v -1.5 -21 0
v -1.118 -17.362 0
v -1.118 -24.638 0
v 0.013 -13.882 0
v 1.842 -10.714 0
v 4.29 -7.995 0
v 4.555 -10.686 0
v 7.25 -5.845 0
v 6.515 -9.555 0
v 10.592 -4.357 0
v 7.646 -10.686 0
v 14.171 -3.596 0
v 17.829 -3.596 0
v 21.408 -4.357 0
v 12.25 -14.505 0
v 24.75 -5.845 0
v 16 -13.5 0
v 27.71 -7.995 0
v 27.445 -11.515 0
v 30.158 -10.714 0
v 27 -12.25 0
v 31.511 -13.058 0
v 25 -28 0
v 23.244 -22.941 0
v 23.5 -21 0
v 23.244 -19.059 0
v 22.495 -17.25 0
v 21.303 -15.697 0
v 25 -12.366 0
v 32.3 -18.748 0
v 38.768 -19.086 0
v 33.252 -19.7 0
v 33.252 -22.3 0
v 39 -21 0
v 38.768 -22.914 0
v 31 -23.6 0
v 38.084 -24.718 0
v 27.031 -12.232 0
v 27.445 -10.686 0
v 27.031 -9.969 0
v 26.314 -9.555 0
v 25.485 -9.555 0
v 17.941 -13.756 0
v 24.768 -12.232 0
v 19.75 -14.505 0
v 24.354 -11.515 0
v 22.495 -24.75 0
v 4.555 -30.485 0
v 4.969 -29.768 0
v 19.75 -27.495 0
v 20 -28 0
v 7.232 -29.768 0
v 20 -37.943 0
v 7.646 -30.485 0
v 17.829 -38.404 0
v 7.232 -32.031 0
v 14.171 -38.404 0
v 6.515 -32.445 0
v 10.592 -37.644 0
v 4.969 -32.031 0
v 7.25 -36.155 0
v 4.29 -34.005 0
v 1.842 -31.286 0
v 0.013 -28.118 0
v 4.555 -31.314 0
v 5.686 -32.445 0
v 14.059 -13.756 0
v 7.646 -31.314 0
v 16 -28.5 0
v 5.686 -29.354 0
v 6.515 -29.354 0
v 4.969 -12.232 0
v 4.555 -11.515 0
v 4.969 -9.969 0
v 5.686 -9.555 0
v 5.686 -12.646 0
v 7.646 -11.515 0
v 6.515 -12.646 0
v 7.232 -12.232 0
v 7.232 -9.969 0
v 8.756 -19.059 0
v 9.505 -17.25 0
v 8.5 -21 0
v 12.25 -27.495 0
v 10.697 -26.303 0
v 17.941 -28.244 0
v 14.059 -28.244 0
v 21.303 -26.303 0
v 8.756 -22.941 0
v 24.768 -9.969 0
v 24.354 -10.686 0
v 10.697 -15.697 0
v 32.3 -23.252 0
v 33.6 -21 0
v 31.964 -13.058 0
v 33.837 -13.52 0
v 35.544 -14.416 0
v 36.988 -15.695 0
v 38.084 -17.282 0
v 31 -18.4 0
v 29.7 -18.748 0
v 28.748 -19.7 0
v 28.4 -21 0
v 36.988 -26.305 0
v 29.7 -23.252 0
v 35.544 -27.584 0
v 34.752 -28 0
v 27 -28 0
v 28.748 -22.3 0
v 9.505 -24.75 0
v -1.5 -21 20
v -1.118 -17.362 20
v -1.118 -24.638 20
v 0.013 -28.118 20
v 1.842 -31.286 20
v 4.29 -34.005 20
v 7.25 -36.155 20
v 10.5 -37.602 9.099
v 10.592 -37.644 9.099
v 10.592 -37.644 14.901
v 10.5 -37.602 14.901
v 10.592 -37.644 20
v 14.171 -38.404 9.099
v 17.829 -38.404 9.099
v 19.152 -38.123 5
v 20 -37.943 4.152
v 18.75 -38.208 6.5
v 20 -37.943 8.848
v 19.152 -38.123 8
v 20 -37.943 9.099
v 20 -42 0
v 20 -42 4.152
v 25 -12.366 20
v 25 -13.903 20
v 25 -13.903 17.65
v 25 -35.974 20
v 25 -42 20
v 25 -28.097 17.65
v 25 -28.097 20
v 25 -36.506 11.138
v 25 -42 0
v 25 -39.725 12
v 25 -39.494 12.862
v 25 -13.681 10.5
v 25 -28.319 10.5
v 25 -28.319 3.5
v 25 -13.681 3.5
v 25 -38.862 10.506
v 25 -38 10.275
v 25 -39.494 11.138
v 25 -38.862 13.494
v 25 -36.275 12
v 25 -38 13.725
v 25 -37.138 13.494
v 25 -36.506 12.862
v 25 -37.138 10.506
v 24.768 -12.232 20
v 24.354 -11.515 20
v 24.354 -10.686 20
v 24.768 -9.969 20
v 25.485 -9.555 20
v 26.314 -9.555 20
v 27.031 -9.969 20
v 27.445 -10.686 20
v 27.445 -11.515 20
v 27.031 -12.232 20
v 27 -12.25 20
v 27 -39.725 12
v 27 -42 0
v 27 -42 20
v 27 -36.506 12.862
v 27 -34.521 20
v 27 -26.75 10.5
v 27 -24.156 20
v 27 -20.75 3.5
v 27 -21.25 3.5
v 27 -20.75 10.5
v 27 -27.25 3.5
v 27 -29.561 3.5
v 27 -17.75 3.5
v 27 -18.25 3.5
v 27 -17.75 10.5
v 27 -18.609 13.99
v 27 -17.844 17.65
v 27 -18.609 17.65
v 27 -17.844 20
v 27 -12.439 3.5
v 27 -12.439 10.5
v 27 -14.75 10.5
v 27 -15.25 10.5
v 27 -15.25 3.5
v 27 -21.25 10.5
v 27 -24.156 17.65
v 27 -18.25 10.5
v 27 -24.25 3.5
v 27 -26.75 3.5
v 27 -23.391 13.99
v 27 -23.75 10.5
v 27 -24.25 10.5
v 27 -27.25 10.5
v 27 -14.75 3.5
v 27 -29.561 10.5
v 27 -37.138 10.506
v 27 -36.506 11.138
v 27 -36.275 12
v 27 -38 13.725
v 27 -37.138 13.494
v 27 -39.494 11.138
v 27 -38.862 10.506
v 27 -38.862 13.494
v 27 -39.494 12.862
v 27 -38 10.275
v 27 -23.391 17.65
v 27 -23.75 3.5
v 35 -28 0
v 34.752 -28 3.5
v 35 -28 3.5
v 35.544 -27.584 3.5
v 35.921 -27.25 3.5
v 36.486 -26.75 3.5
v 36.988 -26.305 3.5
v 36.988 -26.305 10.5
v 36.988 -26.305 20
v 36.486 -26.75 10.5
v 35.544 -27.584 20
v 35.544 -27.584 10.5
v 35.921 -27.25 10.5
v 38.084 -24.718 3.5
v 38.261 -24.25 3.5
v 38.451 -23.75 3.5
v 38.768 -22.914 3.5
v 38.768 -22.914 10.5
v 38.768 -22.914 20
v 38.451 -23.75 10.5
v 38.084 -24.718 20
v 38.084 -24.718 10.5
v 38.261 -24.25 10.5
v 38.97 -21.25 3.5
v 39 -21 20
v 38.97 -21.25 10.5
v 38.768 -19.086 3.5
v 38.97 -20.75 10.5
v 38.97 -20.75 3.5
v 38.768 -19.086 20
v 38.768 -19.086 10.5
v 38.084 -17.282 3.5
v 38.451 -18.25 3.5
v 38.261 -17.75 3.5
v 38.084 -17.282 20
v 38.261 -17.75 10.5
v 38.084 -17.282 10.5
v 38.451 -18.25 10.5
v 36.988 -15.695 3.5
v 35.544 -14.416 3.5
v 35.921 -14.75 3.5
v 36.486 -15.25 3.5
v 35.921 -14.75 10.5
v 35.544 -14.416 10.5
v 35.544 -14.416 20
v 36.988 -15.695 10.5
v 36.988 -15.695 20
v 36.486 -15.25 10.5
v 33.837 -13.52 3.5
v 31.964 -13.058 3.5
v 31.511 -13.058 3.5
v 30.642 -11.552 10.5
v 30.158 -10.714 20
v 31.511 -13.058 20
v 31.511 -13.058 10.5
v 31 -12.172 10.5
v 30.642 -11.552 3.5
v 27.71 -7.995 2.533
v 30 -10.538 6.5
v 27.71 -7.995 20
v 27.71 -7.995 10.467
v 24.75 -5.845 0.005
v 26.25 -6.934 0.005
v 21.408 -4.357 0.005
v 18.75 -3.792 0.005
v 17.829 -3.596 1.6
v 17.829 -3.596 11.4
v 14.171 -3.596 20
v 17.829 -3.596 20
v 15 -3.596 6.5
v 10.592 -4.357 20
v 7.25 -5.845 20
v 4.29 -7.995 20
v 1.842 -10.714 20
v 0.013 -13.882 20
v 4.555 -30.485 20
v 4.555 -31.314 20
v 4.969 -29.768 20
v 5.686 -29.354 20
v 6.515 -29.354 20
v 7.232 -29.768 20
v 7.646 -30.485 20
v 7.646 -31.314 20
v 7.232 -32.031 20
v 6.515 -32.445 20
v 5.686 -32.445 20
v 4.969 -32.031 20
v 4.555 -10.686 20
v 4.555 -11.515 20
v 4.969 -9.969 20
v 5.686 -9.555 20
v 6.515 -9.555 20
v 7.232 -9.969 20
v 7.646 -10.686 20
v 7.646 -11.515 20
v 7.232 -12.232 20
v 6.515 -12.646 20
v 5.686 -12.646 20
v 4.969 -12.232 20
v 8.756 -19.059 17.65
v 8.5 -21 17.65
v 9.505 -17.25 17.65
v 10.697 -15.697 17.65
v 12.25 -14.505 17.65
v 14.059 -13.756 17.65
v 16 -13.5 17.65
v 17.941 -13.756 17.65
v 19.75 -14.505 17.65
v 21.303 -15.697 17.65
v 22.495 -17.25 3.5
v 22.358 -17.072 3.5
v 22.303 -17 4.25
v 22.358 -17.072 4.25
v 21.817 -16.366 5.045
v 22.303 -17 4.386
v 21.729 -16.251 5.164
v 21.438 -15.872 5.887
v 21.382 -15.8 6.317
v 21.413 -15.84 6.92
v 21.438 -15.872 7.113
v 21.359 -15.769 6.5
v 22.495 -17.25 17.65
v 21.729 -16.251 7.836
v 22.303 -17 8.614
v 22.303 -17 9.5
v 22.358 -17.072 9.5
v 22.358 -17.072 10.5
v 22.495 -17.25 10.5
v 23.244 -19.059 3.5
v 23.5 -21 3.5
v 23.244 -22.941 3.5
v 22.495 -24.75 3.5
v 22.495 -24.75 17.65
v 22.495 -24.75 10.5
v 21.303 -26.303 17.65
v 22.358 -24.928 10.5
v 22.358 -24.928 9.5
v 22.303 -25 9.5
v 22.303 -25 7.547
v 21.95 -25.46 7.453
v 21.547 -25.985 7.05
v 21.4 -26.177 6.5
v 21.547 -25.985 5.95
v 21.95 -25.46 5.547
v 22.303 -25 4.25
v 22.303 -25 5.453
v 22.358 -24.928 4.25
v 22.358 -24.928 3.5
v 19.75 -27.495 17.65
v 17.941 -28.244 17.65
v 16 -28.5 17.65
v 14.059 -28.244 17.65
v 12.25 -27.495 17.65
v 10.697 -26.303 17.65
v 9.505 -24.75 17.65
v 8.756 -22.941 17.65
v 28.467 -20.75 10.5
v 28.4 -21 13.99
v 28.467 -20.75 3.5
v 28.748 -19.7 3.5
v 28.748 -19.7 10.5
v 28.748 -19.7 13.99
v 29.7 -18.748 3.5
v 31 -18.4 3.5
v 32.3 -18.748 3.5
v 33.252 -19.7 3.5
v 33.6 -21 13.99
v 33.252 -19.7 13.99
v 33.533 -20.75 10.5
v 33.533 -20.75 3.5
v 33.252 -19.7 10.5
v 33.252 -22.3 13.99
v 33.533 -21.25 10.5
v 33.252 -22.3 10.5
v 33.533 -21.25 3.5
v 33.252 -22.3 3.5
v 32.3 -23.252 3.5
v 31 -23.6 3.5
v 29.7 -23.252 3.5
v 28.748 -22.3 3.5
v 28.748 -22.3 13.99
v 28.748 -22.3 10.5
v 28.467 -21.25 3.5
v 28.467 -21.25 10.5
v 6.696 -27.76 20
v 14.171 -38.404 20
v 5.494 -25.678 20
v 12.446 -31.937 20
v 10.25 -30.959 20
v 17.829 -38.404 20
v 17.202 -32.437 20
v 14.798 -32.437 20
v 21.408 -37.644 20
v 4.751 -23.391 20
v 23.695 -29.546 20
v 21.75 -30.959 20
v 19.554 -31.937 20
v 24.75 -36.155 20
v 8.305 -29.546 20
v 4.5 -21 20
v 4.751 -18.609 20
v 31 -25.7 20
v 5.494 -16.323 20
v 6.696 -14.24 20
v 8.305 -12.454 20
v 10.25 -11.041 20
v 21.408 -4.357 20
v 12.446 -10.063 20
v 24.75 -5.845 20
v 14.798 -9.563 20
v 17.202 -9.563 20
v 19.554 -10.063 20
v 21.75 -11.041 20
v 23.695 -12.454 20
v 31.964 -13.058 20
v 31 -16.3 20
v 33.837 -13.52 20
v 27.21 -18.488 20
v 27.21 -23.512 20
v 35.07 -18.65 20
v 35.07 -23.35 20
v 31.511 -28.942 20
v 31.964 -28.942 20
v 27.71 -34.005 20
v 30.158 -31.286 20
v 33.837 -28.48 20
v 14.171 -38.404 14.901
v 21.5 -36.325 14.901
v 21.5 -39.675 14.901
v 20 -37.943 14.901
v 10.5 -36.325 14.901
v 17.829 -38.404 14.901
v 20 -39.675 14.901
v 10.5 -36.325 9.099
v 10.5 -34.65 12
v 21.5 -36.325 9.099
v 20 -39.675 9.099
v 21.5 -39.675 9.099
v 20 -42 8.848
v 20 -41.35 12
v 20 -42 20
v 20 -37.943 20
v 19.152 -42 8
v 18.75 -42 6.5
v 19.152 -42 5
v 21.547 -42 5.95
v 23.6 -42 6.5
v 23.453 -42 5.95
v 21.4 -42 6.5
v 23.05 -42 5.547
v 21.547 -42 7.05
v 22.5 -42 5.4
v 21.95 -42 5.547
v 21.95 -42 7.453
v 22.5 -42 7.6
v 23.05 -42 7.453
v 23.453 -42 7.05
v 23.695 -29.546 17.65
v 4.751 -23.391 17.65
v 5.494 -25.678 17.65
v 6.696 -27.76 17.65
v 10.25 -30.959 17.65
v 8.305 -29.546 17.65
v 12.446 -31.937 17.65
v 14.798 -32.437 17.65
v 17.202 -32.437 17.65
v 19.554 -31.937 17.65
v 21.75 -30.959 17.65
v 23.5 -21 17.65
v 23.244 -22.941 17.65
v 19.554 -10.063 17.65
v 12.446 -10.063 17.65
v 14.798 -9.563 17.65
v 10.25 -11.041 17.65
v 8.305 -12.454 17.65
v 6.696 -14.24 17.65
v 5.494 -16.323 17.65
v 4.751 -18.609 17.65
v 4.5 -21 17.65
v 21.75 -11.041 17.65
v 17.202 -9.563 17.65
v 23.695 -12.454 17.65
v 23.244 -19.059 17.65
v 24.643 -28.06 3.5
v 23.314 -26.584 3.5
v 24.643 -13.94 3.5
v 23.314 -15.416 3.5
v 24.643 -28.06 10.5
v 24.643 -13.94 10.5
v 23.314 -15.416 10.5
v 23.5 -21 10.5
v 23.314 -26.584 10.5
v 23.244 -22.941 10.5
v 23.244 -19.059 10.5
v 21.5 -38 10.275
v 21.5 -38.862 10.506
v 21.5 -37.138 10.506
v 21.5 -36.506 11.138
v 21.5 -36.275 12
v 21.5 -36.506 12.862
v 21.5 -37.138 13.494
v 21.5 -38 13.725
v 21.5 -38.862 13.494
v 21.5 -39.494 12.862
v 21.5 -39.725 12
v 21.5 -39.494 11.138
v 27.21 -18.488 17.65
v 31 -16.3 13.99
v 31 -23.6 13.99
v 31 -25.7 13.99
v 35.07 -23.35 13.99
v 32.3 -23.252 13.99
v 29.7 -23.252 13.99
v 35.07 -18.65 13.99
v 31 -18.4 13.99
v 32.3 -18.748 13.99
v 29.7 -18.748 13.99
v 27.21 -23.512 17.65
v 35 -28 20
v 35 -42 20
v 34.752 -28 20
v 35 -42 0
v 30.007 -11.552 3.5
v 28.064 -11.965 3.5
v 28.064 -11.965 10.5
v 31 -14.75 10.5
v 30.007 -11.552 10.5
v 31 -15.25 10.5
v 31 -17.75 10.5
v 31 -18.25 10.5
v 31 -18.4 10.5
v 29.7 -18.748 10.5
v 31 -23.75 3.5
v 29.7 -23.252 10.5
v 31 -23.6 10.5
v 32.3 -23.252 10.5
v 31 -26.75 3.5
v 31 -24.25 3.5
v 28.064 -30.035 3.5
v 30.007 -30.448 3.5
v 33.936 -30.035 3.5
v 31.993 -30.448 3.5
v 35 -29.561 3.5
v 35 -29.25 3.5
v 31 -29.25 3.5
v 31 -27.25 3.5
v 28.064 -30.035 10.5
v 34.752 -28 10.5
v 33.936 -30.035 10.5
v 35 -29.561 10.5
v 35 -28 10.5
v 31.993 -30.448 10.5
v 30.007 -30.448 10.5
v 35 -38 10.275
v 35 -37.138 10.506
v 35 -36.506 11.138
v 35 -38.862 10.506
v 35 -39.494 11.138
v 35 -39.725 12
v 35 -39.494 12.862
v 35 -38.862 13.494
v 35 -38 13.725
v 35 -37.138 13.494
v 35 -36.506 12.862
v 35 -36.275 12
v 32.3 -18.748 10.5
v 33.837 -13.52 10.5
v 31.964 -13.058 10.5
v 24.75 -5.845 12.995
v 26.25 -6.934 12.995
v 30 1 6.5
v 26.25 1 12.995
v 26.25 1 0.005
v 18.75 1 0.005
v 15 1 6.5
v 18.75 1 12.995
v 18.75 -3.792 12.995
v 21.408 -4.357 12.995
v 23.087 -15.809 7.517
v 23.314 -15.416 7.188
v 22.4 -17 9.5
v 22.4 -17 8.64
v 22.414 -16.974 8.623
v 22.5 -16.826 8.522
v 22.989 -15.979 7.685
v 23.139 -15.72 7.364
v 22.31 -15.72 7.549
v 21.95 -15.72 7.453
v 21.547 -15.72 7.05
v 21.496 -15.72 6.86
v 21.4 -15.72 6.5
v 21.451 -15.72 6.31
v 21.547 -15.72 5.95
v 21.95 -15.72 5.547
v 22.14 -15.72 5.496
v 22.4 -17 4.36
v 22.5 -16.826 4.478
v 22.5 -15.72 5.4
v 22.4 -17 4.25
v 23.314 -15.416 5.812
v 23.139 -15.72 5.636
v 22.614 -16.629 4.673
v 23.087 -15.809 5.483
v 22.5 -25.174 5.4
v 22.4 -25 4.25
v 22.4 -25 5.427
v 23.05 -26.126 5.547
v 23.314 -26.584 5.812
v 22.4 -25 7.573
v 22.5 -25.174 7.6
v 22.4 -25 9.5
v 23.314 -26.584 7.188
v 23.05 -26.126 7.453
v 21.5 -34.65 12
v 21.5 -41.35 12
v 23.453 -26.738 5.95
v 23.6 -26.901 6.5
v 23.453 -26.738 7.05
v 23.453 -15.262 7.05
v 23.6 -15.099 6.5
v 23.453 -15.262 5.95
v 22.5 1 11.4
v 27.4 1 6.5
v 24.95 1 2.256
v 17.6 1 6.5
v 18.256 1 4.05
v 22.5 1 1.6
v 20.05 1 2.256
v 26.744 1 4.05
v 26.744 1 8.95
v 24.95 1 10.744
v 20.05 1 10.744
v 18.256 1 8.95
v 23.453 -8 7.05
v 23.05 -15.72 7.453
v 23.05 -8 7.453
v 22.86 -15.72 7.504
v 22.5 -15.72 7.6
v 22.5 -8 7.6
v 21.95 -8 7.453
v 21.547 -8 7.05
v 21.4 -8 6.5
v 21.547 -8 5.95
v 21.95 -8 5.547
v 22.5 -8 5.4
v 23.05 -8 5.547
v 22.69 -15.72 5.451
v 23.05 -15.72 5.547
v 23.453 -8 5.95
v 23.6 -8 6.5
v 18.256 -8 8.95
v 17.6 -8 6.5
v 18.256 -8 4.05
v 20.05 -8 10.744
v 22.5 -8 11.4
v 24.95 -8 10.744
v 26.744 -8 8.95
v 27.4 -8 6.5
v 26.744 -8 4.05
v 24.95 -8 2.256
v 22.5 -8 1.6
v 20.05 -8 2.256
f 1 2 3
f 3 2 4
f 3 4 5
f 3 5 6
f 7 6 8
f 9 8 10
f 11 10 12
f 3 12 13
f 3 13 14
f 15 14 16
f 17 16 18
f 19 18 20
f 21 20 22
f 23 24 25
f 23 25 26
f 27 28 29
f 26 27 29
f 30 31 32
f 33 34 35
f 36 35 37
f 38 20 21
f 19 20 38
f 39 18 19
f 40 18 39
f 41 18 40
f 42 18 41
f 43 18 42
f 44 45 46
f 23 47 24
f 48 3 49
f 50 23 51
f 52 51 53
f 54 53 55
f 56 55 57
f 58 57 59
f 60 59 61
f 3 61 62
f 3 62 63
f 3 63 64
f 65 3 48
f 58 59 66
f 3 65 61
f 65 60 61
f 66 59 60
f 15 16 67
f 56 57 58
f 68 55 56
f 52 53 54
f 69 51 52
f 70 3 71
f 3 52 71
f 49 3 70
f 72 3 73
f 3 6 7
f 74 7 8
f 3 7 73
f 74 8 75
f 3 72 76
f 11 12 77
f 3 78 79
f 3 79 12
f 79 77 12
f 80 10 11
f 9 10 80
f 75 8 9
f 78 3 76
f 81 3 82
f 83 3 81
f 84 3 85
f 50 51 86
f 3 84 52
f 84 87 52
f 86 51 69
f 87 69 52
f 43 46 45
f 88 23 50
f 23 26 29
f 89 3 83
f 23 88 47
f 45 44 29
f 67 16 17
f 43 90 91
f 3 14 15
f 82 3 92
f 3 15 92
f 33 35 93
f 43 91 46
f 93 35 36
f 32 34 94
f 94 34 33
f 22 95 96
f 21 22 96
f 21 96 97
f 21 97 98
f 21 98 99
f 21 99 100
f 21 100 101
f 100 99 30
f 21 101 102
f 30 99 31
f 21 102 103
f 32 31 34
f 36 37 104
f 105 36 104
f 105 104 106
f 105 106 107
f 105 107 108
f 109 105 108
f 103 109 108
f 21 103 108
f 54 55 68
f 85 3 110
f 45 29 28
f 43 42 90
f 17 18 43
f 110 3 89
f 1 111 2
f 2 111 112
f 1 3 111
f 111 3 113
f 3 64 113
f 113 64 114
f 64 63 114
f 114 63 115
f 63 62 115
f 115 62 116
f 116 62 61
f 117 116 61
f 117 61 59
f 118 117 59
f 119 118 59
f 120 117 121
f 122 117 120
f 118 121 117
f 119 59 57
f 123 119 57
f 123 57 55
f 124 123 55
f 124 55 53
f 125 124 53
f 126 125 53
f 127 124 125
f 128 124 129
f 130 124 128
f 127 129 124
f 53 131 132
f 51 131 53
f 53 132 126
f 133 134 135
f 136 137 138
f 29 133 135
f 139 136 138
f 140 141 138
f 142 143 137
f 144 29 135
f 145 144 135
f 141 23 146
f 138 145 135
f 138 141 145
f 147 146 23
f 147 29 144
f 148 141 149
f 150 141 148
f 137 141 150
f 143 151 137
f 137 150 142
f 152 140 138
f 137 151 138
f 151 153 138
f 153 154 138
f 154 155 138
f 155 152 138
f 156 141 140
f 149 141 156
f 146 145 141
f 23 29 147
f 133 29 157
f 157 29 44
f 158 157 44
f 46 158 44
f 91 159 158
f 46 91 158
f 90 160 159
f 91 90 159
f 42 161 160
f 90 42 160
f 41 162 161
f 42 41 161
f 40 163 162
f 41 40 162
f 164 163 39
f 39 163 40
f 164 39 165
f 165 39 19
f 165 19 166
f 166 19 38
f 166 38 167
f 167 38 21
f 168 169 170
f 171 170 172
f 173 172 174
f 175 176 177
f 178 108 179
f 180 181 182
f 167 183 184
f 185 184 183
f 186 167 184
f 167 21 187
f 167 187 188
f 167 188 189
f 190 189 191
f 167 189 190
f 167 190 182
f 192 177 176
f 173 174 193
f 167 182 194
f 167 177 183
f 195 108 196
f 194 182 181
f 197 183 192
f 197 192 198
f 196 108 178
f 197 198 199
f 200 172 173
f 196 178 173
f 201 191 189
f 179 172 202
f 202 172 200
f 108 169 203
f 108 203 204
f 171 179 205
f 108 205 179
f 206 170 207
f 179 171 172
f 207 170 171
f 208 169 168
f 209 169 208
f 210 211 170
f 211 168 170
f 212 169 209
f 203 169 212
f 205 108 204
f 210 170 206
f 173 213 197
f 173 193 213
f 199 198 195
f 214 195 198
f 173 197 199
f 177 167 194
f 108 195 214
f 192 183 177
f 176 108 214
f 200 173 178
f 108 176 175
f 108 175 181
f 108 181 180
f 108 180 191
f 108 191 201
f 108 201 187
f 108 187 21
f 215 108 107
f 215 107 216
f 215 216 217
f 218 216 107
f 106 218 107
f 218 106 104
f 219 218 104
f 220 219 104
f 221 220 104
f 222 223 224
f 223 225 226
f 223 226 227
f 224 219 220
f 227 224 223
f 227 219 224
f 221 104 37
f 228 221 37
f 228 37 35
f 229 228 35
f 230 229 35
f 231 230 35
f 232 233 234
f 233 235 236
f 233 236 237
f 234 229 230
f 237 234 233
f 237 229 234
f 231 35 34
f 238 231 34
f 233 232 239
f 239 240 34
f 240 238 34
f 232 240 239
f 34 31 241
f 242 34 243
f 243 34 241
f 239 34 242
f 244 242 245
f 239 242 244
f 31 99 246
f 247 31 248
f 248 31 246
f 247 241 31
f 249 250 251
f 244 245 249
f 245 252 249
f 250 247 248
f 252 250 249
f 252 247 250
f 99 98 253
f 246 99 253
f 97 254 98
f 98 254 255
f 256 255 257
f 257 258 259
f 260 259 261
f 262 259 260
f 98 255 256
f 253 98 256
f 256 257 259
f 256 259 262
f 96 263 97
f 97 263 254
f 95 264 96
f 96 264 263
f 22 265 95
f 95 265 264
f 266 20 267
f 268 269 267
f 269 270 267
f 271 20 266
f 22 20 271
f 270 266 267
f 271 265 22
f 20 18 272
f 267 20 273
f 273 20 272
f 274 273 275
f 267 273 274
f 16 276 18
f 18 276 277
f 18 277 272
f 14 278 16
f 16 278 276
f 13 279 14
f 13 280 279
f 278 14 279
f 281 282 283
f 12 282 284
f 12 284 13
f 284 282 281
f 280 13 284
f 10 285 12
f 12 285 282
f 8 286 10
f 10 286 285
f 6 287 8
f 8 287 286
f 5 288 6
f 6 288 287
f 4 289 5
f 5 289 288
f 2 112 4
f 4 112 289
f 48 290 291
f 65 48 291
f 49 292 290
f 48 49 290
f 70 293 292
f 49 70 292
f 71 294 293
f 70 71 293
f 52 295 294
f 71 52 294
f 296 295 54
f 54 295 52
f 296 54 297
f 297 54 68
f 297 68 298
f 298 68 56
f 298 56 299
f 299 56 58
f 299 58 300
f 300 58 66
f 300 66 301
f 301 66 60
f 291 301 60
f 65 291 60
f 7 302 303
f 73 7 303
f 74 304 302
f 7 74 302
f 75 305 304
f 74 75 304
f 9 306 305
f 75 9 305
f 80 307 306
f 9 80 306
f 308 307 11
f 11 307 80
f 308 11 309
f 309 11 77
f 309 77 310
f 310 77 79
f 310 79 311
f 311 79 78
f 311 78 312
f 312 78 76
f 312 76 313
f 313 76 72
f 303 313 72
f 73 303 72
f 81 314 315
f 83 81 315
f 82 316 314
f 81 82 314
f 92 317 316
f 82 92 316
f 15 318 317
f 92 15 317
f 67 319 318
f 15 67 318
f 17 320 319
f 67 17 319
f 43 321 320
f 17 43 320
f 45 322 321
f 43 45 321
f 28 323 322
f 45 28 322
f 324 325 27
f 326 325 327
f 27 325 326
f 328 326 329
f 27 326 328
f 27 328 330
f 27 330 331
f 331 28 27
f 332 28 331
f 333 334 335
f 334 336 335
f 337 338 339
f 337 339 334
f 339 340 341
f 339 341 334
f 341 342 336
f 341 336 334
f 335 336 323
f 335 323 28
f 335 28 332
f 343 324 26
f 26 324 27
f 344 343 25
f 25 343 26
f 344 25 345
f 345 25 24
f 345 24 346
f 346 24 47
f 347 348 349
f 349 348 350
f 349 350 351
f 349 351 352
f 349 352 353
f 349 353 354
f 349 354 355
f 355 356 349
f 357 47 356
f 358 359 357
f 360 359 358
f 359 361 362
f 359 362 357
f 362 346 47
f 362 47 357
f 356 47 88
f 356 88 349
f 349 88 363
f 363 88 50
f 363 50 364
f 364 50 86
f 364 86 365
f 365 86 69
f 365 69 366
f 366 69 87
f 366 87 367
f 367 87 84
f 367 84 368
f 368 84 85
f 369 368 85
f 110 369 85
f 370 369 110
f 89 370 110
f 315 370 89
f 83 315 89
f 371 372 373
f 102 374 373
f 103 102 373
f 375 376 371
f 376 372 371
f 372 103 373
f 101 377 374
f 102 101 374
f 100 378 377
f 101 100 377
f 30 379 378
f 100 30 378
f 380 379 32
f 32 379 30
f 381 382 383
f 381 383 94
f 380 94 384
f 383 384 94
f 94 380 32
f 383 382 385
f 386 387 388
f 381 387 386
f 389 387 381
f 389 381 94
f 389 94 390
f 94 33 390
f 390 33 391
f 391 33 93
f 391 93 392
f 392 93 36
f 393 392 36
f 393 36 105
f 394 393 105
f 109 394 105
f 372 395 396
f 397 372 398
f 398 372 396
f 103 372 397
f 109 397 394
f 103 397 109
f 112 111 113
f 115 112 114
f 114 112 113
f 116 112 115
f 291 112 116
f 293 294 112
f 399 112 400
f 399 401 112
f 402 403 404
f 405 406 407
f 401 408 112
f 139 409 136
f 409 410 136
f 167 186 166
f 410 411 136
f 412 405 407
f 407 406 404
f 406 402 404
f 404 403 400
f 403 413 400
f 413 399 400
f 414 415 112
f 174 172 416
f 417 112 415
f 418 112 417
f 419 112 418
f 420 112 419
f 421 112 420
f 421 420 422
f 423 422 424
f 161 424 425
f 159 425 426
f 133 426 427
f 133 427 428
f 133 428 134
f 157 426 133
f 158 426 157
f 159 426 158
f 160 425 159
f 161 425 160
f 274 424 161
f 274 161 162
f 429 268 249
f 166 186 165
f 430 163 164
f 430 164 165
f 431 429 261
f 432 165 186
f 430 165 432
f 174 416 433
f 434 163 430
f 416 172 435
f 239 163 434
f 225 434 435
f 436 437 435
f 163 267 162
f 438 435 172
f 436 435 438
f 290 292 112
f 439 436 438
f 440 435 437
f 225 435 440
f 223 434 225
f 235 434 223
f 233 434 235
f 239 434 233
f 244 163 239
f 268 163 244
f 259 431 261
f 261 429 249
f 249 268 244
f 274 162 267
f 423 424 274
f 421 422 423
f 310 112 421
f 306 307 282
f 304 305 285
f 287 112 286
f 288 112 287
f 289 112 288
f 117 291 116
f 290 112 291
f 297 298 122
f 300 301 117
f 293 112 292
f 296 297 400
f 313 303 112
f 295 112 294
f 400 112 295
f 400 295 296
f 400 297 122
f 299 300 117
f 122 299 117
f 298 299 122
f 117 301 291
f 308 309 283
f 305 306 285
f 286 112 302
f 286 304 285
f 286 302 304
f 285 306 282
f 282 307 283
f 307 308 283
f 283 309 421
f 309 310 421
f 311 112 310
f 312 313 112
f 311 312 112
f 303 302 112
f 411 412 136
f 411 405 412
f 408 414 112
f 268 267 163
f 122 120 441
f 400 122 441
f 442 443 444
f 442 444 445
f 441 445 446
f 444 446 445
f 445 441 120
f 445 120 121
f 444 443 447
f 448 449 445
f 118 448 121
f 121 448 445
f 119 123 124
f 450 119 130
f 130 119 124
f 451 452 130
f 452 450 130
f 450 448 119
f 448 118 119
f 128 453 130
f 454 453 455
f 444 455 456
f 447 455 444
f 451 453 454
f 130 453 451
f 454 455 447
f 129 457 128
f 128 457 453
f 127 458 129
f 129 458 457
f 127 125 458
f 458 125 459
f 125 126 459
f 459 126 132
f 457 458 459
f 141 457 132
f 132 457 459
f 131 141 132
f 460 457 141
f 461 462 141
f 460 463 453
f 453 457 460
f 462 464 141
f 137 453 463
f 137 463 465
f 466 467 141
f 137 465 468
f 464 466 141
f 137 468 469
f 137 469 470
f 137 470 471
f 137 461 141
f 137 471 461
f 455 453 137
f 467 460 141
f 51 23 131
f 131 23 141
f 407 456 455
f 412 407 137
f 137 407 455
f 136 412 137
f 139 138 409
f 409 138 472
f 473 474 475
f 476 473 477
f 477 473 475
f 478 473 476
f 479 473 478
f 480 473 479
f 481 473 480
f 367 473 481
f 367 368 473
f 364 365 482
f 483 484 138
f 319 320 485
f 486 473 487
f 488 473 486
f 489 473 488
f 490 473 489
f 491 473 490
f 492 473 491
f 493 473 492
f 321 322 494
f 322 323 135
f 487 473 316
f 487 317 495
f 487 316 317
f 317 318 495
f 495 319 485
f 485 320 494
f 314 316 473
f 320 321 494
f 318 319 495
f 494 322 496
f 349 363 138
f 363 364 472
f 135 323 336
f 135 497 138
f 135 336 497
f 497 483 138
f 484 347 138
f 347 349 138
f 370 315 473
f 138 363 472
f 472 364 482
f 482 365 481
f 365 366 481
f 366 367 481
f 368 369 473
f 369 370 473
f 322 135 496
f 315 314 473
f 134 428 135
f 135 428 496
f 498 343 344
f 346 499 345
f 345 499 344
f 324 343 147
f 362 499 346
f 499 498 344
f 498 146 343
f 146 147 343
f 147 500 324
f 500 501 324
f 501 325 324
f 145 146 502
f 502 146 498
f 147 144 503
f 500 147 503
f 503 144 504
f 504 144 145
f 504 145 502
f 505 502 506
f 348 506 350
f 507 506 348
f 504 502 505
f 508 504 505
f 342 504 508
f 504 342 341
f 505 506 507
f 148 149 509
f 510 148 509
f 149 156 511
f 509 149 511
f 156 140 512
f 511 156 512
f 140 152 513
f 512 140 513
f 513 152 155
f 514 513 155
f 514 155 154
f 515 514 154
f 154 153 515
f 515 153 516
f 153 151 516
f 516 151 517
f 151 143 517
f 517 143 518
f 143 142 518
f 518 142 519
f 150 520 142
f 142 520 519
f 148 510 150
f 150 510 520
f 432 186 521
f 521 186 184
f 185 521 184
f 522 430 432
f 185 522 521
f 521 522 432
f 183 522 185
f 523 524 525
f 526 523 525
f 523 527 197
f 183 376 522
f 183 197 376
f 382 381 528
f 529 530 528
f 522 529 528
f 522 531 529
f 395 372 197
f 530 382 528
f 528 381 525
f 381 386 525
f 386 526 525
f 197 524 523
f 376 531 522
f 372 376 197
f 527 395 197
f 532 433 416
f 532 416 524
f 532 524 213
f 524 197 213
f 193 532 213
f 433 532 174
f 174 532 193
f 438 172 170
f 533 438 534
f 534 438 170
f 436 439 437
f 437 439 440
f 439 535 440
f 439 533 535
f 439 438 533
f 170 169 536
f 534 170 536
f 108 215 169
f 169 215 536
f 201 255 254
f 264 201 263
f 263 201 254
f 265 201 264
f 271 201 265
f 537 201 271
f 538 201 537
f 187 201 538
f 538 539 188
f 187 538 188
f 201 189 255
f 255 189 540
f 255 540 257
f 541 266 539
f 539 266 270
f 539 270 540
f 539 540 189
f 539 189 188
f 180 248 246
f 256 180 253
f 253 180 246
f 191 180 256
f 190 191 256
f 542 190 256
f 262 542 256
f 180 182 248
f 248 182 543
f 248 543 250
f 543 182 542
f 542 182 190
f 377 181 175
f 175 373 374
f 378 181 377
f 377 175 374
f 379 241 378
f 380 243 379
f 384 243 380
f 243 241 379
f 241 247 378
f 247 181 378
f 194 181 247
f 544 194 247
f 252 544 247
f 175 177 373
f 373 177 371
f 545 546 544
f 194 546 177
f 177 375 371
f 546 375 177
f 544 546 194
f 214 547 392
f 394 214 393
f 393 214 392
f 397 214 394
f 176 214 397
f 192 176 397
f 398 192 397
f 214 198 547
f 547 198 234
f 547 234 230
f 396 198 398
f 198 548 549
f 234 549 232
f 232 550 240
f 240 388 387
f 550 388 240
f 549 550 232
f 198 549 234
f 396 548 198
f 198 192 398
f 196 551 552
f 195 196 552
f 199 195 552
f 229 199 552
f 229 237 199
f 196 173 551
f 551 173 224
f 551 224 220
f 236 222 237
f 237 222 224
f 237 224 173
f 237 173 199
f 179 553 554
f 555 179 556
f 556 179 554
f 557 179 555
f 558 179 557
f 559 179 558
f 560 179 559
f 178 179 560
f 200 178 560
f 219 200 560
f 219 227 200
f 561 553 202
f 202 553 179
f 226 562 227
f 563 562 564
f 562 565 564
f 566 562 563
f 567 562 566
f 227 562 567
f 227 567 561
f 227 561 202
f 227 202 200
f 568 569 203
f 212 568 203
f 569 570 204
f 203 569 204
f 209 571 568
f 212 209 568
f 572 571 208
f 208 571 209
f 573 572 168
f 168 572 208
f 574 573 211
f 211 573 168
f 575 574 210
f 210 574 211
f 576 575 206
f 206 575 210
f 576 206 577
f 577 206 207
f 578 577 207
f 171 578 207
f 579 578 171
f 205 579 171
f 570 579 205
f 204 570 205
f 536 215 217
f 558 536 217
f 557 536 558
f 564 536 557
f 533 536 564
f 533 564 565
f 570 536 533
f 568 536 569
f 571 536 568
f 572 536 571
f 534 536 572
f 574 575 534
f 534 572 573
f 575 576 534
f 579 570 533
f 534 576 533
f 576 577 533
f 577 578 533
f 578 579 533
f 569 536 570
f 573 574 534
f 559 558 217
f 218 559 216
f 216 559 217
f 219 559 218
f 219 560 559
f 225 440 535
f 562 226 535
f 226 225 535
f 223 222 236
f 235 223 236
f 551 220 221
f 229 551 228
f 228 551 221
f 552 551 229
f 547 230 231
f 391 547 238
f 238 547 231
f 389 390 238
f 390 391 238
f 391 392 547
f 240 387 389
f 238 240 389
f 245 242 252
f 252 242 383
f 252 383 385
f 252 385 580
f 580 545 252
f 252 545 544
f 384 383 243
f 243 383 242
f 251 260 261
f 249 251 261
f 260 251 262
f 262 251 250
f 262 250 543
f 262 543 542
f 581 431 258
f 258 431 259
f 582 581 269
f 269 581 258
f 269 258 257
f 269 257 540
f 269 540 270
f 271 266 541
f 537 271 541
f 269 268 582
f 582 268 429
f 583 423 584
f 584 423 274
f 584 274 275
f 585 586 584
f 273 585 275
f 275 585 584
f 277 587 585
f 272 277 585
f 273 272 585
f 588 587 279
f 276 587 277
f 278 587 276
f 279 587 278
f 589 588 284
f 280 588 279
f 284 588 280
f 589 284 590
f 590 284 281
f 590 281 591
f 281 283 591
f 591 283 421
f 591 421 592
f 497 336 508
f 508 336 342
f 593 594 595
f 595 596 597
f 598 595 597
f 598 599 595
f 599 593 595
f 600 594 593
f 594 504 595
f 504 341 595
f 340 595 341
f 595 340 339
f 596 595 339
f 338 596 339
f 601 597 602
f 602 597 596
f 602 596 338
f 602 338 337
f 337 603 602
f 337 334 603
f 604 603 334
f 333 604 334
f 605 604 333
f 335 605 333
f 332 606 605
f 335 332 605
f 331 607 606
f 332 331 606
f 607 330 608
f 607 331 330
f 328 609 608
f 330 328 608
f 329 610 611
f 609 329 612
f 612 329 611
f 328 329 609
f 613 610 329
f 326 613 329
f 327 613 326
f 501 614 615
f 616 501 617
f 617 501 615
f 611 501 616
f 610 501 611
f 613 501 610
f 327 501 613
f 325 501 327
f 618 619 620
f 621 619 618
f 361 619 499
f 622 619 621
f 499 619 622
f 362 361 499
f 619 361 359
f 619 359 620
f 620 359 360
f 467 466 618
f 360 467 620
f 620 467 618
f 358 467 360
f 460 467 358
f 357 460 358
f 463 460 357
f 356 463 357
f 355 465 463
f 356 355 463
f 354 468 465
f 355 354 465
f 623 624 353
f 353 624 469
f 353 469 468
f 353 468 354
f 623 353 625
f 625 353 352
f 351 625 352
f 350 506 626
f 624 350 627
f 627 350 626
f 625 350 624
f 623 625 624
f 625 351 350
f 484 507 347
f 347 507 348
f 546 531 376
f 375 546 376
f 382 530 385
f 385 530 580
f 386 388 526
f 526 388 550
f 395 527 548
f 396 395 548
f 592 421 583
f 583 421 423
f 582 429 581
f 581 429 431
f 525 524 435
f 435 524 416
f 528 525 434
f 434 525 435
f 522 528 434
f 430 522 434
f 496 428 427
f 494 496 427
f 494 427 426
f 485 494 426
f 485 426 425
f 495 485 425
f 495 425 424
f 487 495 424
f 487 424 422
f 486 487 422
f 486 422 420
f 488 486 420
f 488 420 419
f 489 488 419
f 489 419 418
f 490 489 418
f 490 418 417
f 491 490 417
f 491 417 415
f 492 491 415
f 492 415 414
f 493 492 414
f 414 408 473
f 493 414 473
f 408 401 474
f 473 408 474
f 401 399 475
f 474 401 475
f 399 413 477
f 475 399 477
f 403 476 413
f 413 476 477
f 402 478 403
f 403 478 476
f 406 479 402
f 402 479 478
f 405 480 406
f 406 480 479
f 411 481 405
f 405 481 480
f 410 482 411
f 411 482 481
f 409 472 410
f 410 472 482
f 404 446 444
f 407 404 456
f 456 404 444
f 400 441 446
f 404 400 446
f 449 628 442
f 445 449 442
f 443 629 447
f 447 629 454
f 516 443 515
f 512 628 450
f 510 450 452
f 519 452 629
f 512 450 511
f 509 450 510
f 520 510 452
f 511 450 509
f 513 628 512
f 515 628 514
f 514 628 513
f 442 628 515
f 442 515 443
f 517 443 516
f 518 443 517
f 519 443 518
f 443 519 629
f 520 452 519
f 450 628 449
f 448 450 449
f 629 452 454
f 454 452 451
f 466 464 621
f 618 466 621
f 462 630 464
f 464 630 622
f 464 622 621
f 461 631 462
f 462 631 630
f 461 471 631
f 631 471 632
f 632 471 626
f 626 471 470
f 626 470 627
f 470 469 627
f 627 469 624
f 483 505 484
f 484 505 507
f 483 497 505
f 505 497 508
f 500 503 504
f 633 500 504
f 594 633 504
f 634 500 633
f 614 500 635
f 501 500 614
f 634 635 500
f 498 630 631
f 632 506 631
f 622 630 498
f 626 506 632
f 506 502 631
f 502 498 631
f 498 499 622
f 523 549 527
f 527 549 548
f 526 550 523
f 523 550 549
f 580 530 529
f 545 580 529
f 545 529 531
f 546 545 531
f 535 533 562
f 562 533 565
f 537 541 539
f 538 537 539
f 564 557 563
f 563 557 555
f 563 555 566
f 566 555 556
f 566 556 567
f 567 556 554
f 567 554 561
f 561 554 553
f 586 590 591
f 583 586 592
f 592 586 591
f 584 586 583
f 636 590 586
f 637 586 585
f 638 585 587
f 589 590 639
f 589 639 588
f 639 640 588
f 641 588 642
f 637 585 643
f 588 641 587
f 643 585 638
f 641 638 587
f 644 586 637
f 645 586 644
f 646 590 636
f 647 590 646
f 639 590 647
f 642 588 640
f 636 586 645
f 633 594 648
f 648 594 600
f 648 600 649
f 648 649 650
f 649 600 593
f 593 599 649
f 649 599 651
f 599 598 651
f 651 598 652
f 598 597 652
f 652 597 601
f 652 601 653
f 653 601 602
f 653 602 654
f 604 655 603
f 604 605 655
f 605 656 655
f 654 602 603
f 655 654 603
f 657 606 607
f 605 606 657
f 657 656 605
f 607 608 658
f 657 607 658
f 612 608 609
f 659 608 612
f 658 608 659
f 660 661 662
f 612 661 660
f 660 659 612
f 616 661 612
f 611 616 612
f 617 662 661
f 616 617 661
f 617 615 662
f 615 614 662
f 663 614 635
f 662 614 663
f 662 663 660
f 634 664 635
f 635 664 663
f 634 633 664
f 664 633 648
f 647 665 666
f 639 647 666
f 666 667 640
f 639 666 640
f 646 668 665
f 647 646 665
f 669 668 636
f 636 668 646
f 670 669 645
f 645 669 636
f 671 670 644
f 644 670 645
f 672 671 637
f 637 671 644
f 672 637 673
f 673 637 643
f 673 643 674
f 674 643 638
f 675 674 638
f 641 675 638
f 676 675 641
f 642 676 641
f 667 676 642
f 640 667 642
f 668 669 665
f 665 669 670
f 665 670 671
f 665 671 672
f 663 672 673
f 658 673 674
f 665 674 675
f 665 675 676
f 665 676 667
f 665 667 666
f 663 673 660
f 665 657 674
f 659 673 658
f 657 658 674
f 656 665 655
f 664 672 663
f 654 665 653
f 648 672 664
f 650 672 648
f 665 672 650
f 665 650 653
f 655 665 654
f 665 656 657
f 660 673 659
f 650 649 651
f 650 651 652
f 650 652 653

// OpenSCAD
// file: configuration.scad
// Increase this if your slicer or printer make holes too tight.
extra_radius = 0.1;

// OD = outside diameter, corner to corner.
m3_nut_od = 6.1;
m3_nut_radius = m3_nut_od/2 + 0.2 + extra_radius;
m3_washer_radius = 3.5 + extra_radius;
m3_nut_thickness = 2.35;
m3_nyloc_thickness = 3.85;

// Major diameter of metric 3mm thread.
m3_major = 2.85;
m3_radius = m3_major/2 + extra_radius;
m3_wide_radius = m3_major/2 + extra_radius + 0.2;

// NEMA17 stepper motors.
motor_shaft_diameter = 5;
motor_shaft_radius = motor_shaft_diameter/2 + extra_radius;

// Frame brackets. M3x8mm screws work best with 3.6 mm brackets.
thickness = 3.6;

// OpenBeam or Misumi. Currently only 15x15 mm, but there is a plan
// to make models more parametric and allow 20x20 mm in the future.
extrusion = 15;

// Placement for the NEMA17 stepper motors.
motor_offset = 44;
motor_length = 47;
// main file
// Based on "Makergear Filament drive goes Bowden" by Luke321
// http://www.thingiverse.com/thing:63674

include <configuration.scad>;

filament_offset = 22.5;

module extruder() {
  rotate([90, 0, 0]) difference() {
    union() {
      //main cylinder
      translate([16,20,21]) rotate([90,0,0]) cylinder(h=20, r=17.5);

      //bearing mount

      translate([31,20,21]) rotate([90,0,0]) cylinder (h=20, r=8);

      //pushfit/pneufit mount
      translate([filament_offset, 6.5, 13])
        cylinder(r=7.5, h=28, center=true, $fn=6);

      //filament support
      translate([21.75,6.5,34]) rotate([0,0,0]) cylinder (h=8, r=3, $fn=12);

      //clamp
      translate([20, 0, 28]) cube([15, 20, 14]);
    }

    //pulley opening
#    translate([16,21,21]) rotate([90,0,0]){
      cylinder (h=22, r=7.5);

      rotate([0,0,45]) {
        //translate([14,0,0]) cylinder(h=22, r=1.6, $fn=12);
        translate([0,14,0]) cylinder(h=22, r=1.6, $fn=12);
        translate([-14,0,0]) cylinder(h=22, r=1.6, $fn=12);
        translate([0,-14,0]) cylinder(h=22, r=1.6, $fn=12);
      }
    }

    //gearhead indentation
    translate([16,21,21]) rotate([90,0,0]) cylinder (h=3.35, r=11.5);

    //pulley hub indentation
    translate([16,20-2,21]) rotate([90,0,0]) cylinder (h=5.6, r=7);

    //bearing screws
#    translate([31,21,21]) rotate([90,0,0]) cylinder (h=22, r=2.6, $fn=12);
#    translate([31,22,21]) rotate([90,30,0]) cylinder (h=8.01, r=4.7, $fn=6);

    //bearing
    difference() {
      union() {
       translate([31,10.5,21]) rotate([90,0,0]) cylinder (h=7, r=9.5);

       translate([31,8.5-5,21-8.25-2]) cube([20, 7, 18.5]);
        //opening between bearing and pulley
        translate([20,9.5-5.25,21-8.25+3.25+1]) cube([10, 5.25, 8]);
      }
      //removable supports
      for (z = [15:3:27]) {
        translate([36, 10, z])  cube([20, 20, 0.5], center=true);
      }
    }

    //filament path chamfer
    translate([filament_offset,6.5,15]) rotate([0,0,0]) #
      cylinder(h=3, r1=0.5, r2=3, $fn=12);

    //filament path
    translate([filament_offset,6.5,-10]) rotate([0,0,0]) #
      cylinder(h=60, r=1.1, $fn=12);

    //pushfit/pneufit mount
color("blue")    translate([filament_offset, 6.5, -2])  cylinder(r=4.9, h=10, $fn=12);

    //clamp slit
    translate([25,-1,10]) cube([2, 22, 35]);
    //clamp nut
    translate([10.5,12,38]) rotate([0,90,0])
      cylinder(h=11, r=m3_nut_radius, $fn=6);
    //clamp screw hole
#    translate([15,12,38]) rotate([0,90,0])
      cylinder(h=25, r=m3_wide_radius, $fn=12);
  }
}

extruder();
